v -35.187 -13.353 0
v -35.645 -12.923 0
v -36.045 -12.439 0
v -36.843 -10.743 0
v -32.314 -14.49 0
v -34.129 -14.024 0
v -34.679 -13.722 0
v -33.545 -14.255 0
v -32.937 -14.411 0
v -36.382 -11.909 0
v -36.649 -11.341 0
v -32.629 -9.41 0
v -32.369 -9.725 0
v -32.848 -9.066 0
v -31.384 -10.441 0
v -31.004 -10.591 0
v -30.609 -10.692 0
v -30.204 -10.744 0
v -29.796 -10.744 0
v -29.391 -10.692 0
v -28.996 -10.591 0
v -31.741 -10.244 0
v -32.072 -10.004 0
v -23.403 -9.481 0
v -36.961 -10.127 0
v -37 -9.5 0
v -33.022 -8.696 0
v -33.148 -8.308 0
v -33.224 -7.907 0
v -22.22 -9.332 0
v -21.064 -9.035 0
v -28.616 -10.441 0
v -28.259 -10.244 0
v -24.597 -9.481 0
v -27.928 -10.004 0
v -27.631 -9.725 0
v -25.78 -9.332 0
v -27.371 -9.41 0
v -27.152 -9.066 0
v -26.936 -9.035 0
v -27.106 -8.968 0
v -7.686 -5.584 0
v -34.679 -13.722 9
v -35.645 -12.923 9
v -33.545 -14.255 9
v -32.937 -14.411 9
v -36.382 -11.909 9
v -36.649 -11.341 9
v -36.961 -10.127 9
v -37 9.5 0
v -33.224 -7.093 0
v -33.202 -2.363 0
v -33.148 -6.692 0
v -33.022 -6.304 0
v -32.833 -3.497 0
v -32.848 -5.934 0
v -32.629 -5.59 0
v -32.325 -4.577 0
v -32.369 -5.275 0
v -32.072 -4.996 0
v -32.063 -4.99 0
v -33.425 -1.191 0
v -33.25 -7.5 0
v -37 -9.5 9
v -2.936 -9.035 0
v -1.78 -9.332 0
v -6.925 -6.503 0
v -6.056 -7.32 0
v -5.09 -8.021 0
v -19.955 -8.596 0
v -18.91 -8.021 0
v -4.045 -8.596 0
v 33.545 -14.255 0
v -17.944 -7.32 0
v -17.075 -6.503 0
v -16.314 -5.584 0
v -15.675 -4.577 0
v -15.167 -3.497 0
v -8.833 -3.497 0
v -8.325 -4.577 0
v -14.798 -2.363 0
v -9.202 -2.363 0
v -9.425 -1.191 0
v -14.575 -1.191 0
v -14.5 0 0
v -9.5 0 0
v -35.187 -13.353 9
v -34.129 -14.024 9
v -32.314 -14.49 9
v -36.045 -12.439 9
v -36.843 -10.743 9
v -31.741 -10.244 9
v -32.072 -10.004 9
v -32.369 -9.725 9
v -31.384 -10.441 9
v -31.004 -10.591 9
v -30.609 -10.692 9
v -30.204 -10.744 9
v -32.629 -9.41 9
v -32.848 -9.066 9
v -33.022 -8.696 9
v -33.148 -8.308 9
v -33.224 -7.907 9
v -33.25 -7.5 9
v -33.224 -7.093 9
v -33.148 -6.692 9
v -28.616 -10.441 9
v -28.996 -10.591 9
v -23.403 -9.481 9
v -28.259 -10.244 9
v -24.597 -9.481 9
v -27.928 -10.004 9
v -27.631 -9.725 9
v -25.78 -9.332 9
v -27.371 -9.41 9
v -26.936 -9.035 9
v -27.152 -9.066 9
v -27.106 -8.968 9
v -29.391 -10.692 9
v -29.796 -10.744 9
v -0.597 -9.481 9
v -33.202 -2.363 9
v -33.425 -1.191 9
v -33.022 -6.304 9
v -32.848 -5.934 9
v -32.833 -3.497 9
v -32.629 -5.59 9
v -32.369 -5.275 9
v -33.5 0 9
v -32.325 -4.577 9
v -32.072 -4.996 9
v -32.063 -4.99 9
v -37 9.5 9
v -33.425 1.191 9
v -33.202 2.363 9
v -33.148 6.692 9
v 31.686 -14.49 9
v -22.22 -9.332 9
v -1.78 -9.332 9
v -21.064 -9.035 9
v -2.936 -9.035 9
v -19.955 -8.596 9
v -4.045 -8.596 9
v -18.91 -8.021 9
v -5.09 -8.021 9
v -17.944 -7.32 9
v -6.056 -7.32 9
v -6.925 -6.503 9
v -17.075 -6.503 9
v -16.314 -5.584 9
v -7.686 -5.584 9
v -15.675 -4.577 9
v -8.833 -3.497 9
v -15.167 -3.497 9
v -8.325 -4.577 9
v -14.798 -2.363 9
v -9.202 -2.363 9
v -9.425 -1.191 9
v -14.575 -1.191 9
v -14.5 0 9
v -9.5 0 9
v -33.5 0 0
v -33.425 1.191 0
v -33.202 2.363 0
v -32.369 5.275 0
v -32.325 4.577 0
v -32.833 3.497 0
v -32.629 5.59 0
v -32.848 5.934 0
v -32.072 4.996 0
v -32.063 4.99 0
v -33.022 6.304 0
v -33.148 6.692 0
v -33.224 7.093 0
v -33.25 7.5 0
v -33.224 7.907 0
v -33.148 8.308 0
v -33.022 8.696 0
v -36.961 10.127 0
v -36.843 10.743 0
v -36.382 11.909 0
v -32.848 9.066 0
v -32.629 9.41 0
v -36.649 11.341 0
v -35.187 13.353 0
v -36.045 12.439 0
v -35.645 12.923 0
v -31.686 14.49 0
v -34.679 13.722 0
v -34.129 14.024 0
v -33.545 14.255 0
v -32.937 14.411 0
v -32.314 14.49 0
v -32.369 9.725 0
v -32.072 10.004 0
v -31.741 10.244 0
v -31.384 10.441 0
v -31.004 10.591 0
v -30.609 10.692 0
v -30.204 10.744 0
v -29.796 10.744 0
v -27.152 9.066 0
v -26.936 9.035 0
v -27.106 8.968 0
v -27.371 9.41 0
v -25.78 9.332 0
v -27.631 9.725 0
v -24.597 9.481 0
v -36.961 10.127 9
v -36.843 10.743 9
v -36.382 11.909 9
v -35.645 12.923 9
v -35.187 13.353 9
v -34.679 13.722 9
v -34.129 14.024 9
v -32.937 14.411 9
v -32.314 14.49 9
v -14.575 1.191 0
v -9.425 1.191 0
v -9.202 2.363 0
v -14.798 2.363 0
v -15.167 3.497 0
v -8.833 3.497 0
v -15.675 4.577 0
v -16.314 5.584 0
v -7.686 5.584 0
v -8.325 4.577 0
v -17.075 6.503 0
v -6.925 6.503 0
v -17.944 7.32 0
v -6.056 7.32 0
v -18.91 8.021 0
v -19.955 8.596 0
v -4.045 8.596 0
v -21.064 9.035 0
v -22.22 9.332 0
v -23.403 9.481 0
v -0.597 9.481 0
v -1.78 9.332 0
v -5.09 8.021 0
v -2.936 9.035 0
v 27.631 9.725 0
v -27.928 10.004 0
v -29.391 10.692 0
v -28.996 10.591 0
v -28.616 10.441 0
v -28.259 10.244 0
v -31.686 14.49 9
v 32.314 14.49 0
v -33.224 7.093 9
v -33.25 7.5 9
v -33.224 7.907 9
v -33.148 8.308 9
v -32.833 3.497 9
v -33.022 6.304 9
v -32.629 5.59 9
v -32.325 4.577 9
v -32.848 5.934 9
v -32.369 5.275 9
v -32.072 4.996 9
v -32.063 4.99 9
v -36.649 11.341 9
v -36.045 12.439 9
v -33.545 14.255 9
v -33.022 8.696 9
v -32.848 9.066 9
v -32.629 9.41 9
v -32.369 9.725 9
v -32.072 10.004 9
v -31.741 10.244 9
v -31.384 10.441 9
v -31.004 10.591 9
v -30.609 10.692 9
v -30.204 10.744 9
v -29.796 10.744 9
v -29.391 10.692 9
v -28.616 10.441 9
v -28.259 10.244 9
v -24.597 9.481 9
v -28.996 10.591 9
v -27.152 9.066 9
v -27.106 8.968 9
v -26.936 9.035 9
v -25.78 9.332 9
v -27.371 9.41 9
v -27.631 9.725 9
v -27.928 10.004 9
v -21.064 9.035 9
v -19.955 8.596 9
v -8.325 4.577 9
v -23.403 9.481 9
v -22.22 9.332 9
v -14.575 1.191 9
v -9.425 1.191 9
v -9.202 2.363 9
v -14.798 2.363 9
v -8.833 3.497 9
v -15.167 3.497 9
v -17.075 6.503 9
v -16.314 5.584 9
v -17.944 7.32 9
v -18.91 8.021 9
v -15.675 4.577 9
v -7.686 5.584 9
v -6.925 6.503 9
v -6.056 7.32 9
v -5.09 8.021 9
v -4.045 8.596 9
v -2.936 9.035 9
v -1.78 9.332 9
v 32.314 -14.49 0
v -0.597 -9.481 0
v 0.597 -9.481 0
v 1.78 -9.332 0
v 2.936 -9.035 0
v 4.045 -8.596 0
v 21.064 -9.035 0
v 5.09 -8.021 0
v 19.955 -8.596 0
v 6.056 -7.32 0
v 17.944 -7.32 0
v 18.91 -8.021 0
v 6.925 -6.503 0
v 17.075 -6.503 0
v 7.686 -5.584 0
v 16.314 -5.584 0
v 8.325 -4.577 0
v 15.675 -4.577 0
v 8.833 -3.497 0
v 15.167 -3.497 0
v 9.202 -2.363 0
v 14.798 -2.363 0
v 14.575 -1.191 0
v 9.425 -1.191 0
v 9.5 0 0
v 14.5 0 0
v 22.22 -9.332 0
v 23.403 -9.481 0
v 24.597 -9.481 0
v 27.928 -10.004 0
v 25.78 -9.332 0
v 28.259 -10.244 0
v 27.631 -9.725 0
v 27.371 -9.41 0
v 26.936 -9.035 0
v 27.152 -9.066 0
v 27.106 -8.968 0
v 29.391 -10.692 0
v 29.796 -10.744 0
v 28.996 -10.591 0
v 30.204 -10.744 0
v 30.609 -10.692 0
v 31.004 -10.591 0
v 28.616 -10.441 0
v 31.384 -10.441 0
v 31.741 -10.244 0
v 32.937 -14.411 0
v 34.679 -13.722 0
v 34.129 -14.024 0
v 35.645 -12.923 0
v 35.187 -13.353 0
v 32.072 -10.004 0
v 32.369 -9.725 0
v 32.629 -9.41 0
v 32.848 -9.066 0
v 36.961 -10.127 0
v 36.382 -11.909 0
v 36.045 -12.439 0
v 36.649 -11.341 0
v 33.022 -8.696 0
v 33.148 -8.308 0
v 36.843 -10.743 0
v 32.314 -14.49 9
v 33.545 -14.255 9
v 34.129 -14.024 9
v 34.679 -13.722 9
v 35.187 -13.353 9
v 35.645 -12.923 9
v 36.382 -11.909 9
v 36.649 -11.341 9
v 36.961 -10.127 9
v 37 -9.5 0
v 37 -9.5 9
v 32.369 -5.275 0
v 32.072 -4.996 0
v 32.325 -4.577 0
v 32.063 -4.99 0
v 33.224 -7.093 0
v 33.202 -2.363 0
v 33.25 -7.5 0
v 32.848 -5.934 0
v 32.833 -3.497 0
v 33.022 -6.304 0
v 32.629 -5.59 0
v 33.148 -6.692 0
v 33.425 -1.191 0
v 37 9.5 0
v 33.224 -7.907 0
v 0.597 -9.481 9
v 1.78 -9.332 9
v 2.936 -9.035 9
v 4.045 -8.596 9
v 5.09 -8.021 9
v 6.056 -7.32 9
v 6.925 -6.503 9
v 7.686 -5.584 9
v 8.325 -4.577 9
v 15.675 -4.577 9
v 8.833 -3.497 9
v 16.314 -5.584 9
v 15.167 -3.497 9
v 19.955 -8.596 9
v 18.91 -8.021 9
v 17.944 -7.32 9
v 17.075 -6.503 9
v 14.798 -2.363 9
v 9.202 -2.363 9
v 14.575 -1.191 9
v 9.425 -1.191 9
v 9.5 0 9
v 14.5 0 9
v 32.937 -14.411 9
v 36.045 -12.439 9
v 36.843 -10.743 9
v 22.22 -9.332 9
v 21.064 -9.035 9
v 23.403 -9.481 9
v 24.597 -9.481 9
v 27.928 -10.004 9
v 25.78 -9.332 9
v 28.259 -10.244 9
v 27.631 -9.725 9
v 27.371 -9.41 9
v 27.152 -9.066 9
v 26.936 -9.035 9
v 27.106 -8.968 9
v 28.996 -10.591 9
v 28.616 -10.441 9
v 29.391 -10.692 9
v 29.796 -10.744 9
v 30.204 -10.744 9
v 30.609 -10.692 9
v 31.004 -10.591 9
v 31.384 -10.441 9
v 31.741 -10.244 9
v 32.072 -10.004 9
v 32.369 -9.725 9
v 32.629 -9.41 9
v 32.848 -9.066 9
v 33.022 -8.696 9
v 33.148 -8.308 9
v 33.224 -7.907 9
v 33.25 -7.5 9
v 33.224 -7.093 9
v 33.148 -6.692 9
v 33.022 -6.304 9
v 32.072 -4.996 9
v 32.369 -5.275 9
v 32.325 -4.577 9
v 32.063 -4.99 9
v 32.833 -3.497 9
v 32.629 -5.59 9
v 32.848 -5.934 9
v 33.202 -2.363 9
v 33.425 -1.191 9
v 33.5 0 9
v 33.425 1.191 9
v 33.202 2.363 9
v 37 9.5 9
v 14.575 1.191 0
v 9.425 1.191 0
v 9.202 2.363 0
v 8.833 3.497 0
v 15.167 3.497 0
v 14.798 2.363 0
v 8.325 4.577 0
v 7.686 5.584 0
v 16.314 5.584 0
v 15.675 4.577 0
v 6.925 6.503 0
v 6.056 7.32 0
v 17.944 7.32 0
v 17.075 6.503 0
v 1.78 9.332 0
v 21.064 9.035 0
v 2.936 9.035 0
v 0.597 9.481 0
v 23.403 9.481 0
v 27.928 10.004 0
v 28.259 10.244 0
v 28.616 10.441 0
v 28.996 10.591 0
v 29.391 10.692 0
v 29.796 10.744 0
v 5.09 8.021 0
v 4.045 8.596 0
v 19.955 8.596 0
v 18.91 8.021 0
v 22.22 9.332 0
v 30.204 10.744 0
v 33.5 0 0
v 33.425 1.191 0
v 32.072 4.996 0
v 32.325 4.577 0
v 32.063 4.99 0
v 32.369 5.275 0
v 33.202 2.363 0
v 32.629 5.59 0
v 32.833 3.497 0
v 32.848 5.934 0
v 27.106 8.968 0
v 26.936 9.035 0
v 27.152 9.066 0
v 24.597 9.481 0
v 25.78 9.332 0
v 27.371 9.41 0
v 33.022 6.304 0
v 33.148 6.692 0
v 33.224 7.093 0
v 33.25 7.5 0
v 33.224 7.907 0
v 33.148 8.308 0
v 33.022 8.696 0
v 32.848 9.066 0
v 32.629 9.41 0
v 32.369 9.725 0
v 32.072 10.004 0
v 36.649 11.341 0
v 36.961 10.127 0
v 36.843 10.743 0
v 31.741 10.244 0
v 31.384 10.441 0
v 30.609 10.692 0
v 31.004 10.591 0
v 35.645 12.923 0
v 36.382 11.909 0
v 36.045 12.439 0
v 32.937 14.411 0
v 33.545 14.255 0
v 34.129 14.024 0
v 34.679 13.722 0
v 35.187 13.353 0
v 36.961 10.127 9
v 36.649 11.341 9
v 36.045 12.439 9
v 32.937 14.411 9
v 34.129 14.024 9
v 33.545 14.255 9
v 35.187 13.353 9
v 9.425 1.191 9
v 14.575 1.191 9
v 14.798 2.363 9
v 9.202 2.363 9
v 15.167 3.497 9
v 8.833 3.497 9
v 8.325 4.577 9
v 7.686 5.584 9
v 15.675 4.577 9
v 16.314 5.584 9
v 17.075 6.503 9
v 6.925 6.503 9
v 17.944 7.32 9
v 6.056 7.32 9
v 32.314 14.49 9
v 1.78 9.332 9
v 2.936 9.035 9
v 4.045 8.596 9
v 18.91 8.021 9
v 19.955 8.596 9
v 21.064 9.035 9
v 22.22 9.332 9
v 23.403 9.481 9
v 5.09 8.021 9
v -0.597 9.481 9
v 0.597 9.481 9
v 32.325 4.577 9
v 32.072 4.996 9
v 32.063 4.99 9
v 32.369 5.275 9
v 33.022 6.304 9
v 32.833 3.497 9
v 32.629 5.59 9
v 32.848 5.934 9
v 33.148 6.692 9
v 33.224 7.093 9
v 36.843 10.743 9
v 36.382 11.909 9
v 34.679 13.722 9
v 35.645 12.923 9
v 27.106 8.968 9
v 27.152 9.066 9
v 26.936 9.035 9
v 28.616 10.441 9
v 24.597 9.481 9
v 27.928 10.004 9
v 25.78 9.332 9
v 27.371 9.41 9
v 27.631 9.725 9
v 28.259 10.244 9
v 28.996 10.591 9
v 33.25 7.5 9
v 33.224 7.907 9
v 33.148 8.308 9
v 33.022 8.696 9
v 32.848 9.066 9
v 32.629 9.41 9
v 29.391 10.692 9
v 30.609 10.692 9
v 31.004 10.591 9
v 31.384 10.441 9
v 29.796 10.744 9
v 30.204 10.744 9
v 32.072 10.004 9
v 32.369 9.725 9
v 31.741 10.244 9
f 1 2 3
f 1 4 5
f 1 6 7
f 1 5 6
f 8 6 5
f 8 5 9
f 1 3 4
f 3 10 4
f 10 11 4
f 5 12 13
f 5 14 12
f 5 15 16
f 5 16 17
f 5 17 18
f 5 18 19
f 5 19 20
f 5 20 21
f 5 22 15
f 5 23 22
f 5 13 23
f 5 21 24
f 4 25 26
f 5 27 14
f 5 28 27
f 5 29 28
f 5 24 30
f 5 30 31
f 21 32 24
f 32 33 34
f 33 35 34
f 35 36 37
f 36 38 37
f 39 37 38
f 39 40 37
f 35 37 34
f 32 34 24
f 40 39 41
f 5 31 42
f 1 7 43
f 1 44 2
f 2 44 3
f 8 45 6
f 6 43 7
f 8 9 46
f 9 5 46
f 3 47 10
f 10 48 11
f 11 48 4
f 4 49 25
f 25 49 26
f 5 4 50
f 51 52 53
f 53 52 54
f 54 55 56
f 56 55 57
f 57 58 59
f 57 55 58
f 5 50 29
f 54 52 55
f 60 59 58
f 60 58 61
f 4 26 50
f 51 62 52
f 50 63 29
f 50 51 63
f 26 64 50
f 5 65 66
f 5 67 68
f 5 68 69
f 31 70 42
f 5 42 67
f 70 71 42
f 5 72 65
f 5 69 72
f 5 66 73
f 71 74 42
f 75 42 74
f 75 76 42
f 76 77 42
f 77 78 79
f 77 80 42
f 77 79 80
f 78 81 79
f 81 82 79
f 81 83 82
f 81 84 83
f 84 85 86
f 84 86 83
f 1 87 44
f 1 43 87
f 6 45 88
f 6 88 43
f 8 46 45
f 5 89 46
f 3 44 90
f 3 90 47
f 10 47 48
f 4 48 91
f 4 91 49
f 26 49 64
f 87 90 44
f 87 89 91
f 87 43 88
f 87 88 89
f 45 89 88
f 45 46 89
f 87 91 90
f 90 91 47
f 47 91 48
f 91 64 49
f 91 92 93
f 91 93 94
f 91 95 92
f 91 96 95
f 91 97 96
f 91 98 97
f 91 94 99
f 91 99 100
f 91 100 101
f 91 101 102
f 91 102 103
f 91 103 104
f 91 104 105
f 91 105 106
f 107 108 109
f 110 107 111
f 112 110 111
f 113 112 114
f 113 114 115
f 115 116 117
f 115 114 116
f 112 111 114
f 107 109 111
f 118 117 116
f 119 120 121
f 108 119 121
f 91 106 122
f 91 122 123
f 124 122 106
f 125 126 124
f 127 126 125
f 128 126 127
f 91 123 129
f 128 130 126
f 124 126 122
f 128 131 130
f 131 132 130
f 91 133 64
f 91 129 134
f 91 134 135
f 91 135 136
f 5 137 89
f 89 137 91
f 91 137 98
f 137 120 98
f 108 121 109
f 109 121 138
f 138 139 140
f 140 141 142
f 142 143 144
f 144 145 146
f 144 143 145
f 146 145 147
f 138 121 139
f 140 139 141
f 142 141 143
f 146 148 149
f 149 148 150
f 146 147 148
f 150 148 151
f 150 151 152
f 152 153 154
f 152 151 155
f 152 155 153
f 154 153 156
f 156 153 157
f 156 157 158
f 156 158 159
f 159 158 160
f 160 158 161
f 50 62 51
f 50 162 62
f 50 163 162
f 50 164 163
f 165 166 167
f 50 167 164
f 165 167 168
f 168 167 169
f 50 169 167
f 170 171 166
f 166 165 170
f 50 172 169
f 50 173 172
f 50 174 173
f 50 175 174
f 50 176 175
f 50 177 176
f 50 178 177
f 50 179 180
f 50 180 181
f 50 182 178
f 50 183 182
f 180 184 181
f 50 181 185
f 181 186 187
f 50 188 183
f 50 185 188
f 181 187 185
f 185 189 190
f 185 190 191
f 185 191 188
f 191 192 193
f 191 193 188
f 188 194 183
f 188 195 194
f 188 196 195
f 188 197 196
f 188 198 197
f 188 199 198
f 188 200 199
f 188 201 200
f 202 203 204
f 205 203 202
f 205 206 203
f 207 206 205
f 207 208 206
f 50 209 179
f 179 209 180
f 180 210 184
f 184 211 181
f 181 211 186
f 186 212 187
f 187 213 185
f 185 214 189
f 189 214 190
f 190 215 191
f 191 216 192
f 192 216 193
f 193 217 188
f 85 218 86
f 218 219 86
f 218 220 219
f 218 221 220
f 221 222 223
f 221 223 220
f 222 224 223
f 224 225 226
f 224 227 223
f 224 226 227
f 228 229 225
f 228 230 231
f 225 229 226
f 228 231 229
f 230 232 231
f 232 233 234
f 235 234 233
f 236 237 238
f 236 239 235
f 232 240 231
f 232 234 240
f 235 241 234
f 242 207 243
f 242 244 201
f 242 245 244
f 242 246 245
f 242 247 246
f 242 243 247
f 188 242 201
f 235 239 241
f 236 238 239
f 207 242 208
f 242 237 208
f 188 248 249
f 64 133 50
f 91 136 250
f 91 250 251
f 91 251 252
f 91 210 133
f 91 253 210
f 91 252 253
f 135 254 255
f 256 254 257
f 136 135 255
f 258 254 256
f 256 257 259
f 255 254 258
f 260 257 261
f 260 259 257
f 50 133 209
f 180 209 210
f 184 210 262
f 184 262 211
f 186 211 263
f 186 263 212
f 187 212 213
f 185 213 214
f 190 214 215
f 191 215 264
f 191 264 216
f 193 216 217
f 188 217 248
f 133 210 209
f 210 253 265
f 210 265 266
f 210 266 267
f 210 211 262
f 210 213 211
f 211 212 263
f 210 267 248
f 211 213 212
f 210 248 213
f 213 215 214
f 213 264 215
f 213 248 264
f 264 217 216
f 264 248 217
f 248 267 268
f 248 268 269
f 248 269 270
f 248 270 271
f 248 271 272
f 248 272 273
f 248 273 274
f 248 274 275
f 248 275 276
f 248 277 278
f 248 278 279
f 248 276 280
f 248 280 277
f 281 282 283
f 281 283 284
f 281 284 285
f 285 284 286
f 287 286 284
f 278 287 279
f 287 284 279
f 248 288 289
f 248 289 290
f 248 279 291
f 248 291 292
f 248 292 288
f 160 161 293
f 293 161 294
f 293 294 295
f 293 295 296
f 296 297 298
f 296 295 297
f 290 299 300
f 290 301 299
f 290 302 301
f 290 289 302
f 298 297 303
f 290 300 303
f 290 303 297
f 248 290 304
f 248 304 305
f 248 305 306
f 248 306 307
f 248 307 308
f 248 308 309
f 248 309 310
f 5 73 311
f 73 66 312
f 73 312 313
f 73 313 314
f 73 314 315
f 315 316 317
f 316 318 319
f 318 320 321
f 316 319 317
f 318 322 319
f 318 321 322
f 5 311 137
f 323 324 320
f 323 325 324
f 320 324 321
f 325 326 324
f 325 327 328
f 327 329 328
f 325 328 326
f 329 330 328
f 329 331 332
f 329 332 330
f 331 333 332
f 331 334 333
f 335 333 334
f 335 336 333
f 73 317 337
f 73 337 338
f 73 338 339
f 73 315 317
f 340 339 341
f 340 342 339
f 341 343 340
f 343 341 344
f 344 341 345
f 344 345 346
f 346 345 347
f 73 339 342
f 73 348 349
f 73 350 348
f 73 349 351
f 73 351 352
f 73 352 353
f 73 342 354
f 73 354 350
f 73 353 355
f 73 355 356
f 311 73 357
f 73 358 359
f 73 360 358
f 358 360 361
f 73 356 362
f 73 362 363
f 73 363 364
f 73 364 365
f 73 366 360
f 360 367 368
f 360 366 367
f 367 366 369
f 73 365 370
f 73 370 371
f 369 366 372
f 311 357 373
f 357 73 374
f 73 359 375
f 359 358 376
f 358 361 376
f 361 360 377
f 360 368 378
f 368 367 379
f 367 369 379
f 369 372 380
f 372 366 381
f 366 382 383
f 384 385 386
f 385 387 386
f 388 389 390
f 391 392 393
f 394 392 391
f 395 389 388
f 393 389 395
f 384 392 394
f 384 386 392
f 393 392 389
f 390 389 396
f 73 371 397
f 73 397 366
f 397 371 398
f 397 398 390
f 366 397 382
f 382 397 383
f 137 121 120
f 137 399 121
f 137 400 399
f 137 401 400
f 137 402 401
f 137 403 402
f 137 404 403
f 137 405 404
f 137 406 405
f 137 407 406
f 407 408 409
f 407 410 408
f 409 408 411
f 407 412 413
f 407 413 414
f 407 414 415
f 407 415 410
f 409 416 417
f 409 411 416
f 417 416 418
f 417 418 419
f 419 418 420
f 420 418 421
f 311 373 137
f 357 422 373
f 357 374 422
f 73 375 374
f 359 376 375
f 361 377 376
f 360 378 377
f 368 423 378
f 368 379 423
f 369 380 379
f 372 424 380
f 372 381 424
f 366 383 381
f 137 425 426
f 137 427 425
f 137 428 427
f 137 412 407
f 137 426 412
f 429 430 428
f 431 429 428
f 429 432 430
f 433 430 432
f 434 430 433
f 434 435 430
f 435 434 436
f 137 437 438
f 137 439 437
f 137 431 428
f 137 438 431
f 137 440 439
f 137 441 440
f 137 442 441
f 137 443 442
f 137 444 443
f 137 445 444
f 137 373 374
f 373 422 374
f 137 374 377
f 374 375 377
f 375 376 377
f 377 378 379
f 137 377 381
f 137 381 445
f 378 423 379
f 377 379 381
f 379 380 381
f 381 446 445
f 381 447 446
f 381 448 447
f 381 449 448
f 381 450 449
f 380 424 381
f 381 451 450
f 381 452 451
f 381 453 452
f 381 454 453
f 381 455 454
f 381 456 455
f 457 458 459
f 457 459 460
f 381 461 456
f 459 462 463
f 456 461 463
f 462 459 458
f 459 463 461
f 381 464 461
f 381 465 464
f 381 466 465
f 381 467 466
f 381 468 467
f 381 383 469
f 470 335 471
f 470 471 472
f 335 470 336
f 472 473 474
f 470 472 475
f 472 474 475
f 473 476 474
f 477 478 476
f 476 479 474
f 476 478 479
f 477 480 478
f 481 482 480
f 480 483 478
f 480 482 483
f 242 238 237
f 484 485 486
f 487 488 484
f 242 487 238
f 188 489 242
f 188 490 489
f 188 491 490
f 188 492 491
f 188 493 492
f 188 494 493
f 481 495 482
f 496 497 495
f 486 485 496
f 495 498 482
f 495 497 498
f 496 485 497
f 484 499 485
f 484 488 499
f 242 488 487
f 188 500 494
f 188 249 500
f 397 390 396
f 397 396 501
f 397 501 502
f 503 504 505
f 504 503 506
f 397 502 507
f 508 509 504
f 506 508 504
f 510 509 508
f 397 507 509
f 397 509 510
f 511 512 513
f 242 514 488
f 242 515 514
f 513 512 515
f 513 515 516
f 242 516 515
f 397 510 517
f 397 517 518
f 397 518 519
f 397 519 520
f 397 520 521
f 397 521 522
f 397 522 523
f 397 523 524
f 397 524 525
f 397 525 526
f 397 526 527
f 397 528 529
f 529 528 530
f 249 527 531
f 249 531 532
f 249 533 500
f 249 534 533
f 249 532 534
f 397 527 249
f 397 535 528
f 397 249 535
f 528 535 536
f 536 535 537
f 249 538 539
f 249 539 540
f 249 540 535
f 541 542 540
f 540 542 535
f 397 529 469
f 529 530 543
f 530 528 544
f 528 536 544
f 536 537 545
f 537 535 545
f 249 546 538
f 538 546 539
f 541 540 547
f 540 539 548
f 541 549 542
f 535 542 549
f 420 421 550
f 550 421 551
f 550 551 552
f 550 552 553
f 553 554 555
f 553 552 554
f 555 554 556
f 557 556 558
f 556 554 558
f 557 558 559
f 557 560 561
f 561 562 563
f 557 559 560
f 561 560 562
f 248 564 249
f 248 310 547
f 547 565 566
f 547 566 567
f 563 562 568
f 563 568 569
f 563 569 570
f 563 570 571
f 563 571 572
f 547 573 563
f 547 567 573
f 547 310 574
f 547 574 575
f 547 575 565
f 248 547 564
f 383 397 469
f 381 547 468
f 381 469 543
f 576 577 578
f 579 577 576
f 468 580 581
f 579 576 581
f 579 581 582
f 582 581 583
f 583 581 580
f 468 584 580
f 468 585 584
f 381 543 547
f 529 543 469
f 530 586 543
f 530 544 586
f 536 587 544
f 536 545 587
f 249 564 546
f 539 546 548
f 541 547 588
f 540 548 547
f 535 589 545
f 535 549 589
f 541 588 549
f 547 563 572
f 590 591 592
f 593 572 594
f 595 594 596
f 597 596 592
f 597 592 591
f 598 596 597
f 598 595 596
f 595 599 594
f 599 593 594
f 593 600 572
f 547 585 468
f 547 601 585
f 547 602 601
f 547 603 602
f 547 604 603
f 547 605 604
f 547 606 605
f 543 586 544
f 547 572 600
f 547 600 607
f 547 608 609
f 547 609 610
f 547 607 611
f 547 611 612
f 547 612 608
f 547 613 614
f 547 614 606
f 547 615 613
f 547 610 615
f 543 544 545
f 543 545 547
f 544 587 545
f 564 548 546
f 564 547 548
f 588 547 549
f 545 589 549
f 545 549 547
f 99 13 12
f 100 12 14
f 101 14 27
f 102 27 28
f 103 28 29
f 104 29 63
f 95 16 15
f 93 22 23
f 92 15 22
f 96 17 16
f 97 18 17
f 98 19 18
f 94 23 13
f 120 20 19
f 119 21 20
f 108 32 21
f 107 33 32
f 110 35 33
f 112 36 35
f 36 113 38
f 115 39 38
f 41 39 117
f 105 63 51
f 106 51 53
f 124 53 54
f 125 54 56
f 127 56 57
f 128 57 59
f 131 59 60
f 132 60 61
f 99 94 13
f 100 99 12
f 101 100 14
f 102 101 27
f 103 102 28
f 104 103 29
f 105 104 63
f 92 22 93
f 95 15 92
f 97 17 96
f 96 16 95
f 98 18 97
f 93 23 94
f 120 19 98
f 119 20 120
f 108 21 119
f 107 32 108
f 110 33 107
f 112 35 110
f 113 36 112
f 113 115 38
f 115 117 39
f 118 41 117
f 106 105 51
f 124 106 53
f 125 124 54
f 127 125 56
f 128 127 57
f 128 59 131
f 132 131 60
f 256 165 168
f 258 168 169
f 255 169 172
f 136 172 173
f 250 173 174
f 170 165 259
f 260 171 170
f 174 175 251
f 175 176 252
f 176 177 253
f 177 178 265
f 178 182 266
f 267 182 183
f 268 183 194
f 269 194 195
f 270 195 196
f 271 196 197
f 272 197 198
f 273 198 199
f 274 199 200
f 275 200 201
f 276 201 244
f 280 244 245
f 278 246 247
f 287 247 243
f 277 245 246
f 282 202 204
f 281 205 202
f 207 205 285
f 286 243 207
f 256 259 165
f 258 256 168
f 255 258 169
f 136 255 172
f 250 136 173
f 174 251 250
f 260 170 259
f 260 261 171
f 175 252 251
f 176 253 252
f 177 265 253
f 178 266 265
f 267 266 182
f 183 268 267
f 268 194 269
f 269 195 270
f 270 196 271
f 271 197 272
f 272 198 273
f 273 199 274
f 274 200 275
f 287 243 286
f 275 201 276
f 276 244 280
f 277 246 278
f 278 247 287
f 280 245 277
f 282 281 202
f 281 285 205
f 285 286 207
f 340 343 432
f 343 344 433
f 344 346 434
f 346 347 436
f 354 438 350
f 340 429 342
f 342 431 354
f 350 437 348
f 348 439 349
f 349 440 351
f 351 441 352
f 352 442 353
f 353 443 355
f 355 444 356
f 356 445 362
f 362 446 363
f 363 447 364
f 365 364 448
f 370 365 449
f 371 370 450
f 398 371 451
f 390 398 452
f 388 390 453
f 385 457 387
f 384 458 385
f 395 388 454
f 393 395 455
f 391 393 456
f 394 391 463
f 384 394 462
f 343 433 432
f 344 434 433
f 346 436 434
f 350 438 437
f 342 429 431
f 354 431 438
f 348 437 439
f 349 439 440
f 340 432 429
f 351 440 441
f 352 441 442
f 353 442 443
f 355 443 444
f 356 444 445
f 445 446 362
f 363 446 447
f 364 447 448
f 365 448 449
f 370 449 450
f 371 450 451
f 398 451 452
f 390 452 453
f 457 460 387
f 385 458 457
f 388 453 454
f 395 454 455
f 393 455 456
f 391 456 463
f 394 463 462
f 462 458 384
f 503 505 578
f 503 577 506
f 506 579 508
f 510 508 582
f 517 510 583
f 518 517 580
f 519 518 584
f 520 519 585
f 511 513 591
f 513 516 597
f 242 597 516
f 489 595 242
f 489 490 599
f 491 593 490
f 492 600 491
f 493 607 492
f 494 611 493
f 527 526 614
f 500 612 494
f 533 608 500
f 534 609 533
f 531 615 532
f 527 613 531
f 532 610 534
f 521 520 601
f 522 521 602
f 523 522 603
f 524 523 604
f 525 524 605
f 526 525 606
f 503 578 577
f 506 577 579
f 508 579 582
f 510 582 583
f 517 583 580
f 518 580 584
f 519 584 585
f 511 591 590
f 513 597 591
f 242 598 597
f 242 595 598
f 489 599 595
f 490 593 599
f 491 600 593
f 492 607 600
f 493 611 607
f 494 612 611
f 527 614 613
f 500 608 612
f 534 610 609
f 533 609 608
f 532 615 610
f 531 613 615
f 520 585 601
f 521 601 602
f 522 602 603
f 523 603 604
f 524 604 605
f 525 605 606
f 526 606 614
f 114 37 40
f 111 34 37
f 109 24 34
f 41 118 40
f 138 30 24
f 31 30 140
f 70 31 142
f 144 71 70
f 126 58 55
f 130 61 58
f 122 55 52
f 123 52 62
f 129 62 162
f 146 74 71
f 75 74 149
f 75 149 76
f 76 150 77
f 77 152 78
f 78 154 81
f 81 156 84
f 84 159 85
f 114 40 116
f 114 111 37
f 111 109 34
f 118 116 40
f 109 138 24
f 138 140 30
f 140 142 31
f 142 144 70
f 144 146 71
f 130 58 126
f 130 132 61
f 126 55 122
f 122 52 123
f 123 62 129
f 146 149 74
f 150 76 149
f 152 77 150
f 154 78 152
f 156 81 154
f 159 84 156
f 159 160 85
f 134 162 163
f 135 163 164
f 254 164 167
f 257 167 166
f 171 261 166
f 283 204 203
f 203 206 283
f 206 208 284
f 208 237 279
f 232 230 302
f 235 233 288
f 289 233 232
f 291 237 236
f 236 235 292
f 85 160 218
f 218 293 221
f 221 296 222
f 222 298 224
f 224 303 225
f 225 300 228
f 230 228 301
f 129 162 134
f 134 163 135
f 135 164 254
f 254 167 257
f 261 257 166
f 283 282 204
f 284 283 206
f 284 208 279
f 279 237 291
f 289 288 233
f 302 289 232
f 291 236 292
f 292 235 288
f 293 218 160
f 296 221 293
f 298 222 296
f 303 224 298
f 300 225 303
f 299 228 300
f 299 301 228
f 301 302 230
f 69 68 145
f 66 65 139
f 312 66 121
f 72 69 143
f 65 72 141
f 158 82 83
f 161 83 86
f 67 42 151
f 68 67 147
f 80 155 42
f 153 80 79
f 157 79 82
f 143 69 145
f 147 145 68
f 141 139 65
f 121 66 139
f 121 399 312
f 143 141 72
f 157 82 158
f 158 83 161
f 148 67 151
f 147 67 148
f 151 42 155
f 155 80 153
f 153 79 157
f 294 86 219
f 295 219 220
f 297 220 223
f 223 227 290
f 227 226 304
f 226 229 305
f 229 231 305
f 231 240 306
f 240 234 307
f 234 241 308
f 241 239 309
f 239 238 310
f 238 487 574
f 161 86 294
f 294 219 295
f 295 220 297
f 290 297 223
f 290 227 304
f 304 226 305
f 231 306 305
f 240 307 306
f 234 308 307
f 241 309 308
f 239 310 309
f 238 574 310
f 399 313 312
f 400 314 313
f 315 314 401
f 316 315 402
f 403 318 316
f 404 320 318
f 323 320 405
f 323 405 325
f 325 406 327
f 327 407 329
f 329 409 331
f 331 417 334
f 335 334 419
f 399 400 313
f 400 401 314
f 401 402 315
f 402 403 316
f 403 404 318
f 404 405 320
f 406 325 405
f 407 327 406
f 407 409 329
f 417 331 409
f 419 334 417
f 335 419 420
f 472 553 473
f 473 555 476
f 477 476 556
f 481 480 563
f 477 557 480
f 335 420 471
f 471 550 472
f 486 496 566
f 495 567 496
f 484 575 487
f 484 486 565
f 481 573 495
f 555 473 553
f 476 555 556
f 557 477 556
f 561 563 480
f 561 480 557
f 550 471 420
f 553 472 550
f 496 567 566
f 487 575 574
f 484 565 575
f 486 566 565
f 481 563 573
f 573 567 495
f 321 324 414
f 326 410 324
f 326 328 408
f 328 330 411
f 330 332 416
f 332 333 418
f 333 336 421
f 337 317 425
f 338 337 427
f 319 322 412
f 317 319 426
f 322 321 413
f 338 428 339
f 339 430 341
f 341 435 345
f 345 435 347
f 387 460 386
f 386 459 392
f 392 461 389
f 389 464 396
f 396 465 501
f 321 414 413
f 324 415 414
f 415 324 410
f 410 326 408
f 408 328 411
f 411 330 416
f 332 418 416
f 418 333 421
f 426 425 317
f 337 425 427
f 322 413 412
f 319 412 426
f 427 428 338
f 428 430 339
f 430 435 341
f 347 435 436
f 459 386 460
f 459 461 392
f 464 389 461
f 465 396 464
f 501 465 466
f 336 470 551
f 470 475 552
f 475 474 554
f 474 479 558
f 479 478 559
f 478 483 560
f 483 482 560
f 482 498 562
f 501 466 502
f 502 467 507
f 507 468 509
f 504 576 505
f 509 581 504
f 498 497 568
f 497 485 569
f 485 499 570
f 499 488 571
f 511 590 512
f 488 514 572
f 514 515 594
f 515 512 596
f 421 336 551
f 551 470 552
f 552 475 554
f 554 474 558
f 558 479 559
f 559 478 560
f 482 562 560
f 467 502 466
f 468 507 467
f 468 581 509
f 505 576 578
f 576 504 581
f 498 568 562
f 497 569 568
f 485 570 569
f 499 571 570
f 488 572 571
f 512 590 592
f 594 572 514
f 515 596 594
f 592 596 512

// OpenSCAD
$fn = 50;

difference() {
	union() {
		hull() {
			translate(v = [-32.0, 9.5, 0]) {
				cylinder(h = 9, r = 5);
			}
			translate(v = [32.0, 9.5, 0]) {
				cylinder(h = 9, r = 5);
			}
			translate(v = [-32.0, -9.5, 0]) {
				cylinder(h = 9, r = 5);
			}
			translate(v = [32.0, -9.5, 0]) {
				cylinder(h = 9, r = 5);
			}
		}
	}
	union() {
		translate(v = [-30.0, -7.5, -100.0]) {
			cylinder(h = 200, r = 3.25);
		}
		translate(v = [-30.0, 7.5, -100.0]) {
			cylinder(h = 200, r = 3.25);
		}
		translate(v = [30.0, -7.5, -100.0]) {
			cylinder(h = 200, r = 3.25);
		}
		translate(v = [30.0, 7.5, -100.0]) {
			cylinder(h = 200, r = 3.25);
		}
		translate(v = [-30.0, -7.5, -100.0]) {
			cylinder(h = 200, r = 1.8);
		}
		translate(v = [-30.0, 7.5, -100.0]) {
			cylinder(h = 200, r = 1.8);
		}
		translate(v = [30.0, -7.5, -100.0]) {
			cylinder(h = 200, r = 1.8);
		}
		translate(v = [30.0, 7.5, -100.0]) {
			cylinder(h = 200, r = 1.8);
		}
		translate(v = [-24.0, 0, 0.0]) {
			cylinder(h = 9, r = 9.5);
		}
		cylinder(h = 9, r = 9.5);
		translate(v = [24.0, 0, 0.0]) {
			cylinder(h = 9, r = 9.5);
		}
	}
}
